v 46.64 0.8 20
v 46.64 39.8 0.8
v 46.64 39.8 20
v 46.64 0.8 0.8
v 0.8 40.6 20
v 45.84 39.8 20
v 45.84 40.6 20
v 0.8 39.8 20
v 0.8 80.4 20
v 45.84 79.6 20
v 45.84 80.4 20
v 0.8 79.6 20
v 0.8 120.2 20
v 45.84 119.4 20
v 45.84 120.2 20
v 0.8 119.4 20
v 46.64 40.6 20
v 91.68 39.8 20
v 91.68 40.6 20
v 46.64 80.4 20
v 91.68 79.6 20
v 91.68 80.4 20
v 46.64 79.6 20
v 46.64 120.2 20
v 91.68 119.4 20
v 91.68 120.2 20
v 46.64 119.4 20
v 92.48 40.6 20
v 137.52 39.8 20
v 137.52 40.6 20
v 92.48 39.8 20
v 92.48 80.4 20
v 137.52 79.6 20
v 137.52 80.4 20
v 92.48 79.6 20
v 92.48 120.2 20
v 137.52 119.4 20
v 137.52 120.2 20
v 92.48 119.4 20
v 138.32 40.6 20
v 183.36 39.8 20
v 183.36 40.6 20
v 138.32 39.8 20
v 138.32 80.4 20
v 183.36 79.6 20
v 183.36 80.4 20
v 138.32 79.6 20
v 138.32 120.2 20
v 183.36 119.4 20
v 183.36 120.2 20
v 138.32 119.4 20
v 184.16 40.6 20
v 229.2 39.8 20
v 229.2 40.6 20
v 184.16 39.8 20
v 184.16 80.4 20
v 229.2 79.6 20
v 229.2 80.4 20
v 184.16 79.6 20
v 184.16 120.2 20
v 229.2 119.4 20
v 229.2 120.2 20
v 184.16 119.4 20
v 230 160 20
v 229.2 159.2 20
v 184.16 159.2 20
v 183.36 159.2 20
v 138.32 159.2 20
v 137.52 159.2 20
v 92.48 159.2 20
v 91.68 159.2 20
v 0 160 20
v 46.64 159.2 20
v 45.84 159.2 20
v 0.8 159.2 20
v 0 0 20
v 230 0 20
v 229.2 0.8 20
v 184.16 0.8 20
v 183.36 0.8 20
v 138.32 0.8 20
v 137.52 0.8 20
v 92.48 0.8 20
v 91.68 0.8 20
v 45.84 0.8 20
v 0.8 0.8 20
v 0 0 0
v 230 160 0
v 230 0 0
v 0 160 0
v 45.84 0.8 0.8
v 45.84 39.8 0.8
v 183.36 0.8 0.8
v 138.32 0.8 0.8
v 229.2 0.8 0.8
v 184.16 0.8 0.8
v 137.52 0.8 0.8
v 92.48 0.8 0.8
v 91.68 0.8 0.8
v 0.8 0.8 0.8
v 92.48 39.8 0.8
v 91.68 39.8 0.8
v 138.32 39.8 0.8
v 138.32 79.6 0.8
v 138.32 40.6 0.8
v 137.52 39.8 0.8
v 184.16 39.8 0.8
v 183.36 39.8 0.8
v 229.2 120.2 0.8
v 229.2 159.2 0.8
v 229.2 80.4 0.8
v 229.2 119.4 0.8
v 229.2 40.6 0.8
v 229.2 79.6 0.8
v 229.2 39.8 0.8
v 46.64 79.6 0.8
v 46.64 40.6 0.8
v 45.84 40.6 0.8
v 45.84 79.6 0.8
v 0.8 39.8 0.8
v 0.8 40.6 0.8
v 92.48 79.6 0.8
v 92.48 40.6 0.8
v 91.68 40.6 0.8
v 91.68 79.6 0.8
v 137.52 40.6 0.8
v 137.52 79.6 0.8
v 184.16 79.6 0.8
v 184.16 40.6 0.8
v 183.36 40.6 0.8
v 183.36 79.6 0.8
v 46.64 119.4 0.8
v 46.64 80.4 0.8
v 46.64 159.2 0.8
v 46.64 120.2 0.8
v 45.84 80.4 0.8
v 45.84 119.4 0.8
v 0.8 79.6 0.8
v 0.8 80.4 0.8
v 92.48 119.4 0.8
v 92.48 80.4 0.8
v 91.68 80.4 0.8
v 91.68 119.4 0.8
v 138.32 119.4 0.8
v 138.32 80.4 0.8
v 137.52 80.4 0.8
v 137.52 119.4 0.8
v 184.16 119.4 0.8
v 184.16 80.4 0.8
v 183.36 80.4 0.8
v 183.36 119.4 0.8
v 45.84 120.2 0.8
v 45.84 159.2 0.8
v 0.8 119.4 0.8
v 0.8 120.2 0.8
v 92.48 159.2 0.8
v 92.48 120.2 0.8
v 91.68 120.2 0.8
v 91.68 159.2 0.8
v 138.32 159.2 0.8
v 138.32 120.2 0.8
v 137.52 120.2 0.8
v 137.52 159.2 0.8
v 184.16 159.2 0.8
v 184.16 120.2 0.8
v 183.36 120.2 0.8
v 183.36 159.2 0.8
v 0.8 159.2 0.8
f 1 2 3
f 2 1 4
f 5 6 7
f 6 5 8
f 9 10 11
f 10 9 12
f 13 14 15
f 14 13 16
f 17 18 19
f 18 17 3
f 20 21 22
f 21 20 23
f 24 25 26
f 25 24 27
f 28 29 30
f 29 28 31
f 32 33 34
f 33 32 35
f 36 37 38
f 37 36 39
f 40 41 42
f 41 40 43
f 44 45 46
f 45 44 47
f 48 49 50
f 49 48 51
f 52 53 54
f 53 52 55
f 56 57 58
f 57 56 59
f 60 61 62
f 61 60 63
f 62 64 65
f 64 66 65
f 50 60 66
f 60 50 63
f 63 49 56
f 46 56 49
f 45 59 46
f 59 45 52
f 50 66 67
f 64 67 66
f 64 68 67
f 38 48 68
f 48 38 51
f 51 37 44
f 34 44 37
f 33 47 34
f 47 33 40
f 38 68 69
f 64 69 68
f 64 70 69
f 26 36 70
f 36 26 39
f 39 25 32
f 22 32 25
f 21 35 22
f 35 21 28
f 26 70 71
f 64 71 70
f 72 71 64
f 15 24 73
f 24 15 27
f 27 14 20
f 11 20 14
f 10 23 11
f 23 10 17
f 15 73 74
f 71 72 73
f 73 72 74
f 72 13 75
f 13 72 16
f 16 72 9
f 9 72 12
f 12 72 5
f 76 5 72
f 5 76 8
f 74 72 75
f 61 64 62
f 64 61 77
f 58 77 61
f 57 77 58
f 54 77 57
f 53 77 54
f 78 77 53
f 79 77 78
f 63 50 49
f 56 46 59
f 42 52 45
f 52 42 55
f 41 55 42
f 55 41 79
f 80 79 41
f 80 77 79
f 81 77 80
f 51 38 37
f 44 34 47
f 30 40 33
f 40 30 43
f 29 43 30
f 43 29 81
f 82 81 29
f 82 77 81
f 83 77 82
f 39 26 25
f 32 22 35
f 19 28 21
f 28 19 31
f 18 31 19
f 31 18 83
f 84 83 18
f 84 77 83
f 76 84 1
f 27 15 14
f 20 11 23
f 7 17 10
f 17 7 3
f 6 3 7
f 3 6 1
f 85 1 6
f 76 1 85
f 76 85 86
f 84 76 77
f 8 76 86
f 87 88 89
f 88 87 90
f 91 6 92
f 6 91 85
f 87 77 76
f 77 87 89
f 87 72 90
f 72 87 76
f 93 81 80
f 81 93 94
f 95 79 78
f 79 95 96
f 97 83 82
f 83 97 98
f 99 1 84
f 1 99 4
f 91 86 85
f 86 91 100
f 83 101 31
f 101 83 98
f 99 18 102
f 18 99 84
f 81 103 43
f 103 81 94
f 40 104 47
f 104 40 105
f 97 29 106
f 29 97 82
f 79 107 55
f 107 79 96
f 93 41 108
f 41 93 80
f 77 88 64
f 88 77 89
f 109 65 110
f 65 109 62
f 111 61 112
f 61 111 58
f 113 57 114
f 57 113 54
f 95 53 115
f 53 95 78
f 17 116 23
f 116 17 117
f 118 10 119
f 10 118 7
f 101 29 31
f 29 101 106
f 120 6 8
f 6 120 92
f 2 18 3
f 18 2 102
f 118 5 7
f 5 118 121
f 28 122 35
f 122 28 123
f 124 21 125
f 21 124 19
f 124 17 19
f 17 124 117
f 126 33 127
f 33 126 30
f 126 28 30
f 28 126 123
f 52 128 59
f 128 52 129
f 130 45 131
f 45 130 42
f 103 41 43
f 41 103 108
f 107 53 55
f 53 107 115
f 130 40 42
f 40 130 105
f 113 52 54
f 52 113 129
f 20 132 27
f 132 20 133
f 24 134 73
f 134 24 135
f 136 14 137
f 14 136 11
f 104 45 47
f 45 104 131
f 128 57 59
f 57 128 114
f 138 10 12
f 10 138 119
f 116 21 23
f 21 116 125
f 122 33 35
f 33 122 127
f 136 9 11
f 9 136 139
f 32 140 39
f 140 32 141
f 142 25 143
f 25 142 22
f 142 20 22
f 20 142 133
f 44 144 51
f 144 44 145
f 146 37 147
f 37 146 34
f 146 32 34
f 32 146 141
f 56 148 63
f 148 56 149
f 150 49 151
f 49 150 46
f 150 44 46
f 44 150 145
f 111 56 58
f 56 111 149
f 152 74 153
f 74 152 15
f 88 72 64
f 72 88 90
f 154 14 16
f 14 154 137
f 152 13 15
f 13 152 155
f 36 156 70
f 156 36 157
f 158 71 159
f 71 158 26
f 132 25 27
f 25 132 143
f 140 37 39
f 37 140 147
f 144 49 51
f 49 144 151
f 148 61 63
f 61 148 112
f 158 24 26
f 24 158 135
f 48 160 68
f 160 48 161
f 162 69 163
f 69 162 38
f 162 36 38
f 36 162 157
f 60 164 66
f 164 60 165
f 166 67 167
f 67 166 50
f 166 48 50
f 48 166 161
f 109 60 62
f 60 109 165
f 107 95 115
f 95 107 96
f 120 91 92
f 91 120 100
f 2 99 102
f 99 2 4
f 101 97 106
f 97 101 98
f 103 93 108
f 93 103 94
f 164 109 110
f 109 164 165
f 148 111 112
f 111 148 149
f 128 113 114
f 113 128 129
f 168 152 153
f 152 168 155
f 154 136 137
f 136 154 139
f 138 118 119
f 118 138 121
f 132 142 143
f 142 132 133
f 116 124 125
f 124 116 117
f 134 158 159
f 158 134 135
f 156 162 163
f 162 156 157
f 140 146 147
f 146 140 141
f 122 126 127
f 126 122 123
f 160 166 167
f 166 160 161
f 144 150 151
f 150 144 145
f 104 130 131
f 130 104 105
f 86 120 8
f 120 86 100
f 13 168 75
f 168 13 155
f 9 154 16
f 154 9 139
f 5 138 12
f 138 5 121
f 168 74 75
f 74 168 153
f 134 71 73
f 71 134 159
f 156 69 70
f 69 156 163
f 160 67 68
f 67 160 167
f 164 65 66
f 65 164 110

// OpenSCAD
/* basic dimensions */
width  = 230;   // outer x dimension in mm
length = 160;   // outer y dimension in mm
height = 20;    // outer z dimension in mm
walls  = 0.8;   // wall thickness in mm, two perimeters
base   = true;  // is a bottom wanted?

/* defines - use to define the grid */
N  = 0; // no walls
R  = 1; // right wall
B  = 2; // bottom wall
RB = 3; // both walls
BR = 3; // both walls

/* grid config */
grid = [
    [ RB, RB, RB, RB, RB ],
    [ RB, RB, RB, RB, RB ],
    [ RB, RB, RB, RB, RB ],
    [ RB, RB, RB, RB, RB ],
];

/* -------- */

// calculate base values
gridR = reverse(grid);
unitsX = len(grid[0]);  // units per width
unitsY = len(grid);     // units per length
unitX = (width - walls)/unitsX;   // unit width
unitY = (length - walls)/unitsY;  // unit length

echo(str("Each unit is ",unitX,"mm by ",unitY,"mm"));

/* build */
union() {
    // ground plate
    if(base) {
        cube([width, length, walls]);
    }

    // outer walls
    cube([walls, length, height]);
    translate([width-walls,0,0])
        cube([walls, length, height]);
    cube([width, walls, height]);
    translate([0, length-walls, 0])
        cube([width, walls, height]);

    // iterate over the grid definition
    for (r = [0:1:unitsY-1], c = [0:1:unitsX-1]) {
        unit = gridR[r][c];
        
        // vertical walls
        if (bitwise_and(unit, R)) {
            translate([(c+1)*unitX, r*unitY, 0])
                cube([walls, unitY + walls, height]);
        }
        
        // horizontal walls
        if (bitwise_and(unit, B)) {
            translate([c*unitX, r*unitY , 0])
                cube([unitX, walls, height]);
        }
    }
}

// https://github.com/openscad/scad-utils/blob/master/lists.scad
function reverse(list) = [for (i = [len(list)-1:-1:0]) list[i]];

// https://github.com/royasutton/omdl/blob/master/math/math_bitwise.scad
function bitwise_and
(
  v1,
  v2,
  bv = 1
) = ((v1 + v2) == 0) ? 0
  : (((v1 % 2) > 0) && ((v2 % 2) > 0)) ?
    bitwise_and(floor(v1/2), floor(v2/2), bv*2) + bv
  : bitwise_and(floor(v1/2), floor(v2/2), bv*2);
